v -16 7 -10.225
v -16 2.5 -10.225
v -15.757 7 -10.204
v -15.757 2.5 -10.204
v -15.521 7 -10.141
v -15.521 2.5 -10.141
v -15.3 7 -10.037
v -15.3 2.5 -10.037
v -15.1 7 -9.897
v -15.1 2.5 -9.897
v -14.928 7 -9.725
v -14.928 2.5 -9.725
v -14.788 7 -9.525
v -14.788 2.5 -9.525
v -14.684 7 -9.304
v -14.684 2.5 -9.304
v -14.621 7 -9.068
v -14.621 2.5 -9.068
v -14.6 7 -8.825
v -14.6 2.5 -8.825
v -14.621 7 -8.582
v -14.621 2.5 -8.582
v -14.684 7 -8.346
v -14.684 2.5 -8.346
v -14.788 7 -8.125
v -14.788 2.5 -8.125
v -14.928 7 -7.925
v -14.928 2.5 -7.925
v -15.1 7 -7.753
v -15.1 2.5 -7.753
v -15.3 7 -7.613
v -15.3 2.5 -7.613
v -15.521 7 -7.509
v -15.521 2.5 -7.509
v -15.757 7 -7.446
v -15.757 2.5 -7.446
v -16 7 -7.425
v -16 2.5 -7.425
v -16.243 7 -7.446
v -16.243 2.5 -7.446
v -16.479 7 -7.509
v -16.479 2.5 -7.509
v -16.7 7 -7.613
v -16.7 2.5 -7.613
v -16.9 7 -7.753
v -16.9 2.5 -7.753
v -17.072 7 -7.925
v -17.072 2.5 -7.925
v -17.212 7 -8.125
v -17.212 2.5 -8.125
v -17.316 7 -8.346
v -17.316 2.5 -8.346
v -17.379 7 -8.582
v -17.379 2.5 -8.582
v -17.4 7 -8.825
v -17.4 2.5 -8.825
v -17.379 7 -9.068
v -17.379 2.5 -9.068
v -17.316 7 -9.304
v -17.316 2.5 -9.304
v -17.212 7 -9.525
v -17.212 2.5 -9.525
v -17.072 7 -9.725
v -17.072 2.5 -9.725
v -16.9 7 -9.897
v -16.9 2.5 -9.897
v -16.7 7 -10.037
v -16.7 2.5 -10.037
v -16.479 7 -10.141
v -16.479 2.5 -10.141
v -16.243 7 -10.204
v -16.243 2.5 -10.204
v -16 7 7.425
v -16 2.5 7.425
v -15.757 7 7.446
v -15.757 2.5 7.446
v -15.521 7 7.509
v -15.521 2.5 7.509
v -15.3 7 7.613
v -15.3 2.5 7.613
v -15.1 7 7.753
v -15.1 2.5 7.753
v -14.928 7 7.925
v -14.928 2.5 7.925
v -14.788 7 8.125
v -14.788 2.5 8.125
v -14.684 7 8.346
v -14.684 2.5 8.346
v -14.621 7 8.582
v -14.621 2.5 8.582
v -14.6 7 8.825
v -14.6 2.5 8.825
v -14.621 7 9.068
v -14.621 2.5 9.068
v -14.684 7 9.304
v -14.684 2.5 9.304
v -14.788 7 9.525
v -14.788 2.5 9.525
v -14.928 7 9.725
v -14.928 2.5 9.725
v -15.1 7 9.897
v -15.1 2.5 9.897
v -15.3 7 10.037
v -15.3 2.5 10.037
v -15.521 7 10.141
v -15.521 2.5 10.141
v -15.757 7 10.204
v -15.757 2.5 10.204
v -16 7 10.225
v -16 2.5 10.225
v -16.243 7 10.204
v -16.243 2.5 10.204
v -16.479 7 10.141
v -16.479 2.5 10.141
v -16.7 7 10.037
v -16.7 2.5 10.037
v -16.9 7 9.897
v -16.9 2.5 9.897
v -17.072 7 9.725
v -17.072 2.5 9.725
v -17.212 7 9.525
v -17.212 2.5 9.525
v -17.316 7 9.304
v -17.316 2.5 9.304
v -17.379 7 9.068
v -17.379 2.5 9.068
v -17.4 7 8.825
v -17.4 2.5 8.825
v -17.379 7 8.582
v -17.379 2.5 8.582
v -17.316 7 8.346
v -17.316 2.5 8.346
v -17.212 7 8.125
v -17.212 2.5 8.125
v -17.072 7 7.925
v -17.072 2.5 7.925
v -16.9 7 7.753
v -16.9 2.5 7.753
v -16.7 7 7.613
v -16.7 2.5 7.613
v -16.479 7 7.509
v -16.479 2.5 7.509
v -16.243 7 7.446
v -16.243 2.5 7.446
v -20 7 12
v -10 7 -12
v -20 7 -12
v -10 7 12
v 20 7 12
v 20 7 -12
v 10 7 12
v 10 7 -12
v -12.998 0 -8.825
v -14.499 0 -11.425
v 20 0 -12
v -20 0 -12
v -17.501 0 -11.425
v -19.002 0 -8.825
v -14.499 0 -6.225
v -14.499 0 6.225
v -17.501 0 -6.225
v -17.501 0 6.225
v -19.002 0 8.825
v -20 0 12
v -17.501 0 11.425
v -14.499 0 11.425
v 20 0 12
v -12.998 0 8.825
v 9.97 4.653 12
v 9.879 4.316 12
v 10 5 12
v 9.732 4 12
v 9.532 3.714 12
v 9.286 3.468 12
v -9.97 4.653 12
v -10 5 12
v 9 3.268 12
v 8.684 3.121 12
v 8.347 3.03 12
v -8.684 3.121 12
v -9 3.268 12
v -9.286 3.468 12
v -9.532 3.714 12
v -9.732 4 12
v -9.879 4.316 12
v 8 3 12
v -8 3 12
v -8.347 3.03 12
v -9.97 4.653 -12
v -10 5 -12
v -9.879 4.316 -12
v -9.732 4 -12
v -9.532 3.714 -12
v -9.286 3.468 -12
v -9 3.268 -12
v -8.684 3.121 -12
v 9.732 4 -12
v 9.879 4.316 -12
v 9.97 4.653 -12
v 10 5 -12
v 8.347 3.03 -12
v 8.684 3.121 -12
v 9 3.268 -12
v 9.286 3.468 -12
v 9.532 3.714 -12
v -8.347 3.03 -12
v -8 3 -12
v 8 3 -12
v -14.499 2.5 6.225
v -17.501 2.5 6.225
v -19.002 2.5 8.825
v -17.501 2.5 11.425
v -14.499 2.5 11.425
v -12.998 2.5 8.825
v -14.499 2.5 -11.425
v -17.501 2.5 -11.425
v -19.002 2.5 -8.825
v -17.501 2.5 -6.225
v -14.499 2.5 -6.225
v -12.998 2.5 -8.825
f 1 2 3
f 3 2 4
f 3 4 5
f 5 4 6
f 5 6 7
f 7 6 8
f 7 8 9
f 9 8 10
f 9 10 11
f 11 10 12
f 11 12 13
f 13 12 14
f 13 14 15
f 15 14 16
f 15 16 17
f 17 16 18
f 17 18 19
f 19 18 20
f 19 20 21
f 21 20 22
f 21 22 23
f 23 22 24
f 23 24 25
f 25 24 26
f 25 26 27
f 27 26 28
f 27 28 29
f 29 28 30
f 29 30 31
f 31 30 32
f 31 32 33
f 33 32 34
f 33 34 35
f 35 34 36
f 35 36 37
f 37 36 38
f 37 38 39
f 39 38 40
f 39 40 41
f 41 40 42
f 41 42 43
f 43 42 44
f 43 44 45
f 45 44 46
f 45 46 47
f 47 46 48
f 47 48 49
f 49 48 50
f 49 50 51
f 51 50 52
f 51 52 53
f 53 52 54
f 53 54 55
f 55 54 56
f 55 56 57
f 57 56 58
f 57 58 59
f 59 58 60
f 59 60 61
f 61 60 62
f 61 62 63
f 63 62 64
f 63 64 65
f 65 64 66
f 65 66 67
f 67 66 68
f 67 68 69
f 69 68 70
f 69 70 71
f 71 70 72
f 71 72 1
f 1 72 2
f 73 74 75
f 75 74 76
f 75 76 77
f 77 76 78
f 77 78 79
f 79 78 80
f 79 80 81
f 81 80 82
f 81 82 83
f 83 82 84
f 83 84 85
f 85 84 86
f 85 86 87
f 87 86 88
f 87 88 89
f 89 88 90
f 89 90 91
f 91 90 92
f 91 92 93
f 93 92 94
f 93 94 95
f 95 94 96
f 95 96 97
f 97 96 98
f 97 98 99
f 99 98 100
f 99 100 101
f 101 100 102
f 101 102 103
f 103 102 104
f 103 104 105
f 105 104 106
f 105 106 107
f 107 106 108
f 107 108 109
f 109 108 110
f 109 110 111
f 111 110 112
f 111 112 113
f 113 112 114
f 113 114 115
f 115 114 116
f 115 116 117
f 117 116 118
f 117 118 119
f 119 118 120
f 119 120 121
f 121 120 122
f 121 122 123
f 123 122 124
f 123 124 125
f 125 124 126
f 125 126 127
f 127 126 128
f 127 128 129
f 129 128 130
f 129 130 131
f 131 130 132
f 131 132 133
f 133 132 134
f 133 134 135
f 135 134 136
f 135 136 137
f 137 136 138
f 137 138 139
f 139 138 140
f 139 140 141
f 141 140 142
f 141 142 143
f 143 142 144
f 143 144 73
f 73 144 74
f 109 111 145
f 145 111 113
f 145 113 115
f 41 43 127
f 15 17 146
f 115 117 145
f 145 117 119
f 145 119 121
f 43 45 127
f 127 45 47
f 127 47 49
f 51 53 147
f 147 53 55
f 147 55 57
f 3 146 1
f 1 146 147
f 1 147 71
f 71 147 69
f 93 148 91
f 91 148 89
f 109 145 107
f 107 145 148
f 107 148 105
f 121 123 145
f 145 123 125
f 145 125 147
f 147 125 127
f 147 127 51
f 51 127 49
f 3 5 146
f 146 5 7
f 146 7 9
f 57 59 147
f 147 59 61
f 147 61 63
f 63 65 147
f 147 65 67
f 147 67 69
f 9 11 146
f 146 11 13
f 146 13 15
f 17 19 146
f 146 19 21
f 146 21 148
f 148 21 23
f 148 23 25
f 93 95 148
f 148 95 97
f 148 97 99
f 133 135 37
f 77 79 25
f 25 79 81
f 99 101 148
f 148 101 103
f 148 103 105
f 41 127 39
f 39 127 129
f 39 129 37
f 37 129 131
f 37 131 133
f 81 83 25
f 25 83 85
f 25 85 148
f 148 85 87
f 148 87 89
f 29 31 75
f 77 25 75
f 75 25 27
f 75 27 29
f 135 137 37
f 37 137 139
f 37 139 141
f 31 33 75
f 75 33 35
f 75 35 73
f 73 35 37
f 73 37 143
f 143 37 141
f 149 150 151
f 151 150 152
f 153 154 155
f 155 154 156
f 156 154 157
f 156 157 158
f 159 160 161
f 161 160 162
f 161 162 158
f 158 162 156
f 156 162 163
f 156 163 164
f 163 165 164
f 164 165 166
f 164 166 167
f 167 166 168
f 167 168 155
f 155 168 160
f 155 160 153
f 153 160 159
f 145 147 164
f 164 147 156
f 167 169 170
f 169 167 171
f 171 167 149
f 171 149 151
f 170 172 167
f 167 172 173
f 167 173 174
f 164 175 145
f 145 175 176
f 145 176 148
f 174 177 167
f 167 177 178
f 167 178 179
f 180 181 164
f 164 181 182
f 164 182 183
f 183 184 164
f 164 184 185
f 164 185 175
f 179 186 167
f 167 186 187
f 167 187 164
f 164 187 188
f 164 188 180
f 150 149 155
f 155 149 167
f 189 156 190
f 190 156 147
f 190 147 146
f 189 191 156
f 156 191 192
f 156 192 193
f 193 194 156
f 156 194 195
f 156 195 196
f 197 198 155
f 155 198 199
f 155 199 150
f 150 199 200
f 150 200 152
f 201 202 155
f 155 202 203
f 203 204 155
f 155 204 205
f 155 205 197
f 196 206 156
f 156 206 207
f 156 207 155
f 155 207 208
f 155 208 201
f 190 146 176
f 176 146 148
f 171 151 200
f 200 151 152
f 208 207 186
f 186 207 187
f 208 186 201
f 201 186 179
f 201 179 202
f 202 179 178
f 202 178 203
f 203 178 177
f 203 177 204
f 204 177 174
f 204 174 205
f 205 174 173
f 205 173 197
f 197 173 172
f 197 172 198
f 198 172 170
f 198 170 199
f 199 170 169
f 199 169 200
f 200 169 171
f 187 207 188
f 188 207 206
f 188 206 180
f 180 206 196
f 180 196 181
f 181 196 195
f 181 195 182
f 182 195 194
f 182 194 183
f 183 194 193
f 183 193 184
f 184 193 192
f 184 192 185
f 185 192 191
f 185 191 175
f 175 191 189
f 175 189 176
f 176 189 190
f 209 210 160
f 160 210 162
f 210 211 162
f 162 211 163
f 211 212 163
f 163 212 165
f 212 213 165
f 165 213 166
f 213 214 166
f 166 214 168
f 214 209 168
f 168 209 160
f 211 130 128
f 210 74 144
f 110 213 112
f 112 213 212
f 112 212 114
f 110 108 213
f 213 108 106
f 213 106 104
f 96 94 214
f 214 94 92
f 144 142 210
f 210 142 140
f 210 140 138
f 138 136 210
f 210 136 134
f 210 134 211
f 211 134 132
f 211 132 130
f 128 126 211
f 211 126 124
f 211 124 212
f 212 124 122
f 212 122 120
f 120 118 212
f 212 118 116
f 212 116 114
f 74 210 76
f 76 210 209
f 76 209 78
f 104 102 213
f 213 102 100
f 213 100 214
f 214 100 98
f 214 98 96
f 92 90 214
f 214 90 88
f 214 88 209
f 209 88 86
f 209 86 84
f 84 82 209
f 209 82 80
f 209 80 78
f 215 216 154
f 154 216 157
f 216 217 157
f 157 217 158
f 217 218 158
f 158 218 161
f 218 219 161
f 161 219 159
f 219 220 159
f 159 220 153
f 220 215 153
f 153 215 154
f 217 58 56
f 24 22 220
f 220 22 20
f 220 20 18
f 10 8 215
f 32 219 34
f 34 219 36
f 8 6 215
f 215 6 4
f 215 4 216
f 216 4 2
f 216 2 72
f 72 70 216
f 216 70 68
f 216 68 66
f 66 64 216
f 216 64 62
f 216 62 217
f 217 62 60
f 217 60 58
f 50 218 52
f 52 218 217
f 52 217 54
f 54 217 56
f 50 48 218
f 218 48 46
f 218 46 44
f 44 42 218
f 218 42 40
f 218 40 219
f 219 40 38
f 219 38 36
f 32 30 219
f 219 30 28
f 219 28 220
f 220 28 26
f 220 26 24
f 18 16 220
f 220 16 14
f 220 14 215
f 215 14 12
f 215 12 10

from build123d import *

# Parameters (mm, degrees)
SKETCH1_W           = 40
SKETCH1_H           = 24
SKETCH1_R           = 1.4
BOSS_EXTRUDE1_DEPTH = 7
SKETCH2_W           = 20
SKETCH2_H           = 24
CUT_EXTRUDE1_DEPTH  = 4
FILLET1_R           = 2
CUT_EXTRUDE2_DEPTH  = 2.5


with BuildPart() as part:
    # Sketch1 → Boss-Extrude1 (new body)
    with BuildSketch(Plane(origin=(0, 0, 0), x_dir=(1, 0, 0), z_dir=(0, 1, 0))):
        Rectangle(SKETCH1_W, SKETCH1_H)
        with Locations(Location((-16, 8.825, 0), (0, 0, 270))):
            Circle(SKETCH1_R, mode=Mode.SUBTRACT)
        with Locations(Location((-16, -8.825, 0), (0, 0, 270))):
            Circle(SKETCH1_R, mode=Mode.SUBTRACT)
    extrude(amount=BOSS_EXTRUDE1_DEPTH)

    # Sketch2 → Cut-Extrude1 (cut)
    with BuildSketch(Plane(origin=(0, 7, 0), x_dir=(1, 0, 0), z_dir=(0, 1, 0))):
        Rectangle(SKETCH2_W, SKETCH2_H)
    extrude(amount=-CUT_EXTRUDE1_DEPTH, mode=Mode.SUBTRACT)

    # Fillet1
    fillet1_edges = [part.edges().sort_by_distance(p)[0] for p in [
        (-10, 3, 0),
        (10, 3, 0),
    ]]
    fillet(fillet1_edges, radius=FILLET1_R)

    # Sketch3 → Cut-Extrude2 (cut)
    with BuildSketch(Plane.XZ):
        Polygon((-14.4988893, 6.225), (-12.9977786, 8.825), (-14.4988893, 11.425), (-17.5011107, 11.425), (-19.0022214, 8.825), (-17.5011107, 6.225), align=None)
        Polygon((-14.4988893, -11.425), (-12.9977786, -8.825), (-14.4988893, -6.225), (-17.5011107, -6.225), (-19.0022214, -8.825), (-17.5011107, -11.425), align=None)
    extrude(amount=-CUT_EXTRUDE2_DEPTH, mode=Mode.SUBTRACT)


solid = part.part
